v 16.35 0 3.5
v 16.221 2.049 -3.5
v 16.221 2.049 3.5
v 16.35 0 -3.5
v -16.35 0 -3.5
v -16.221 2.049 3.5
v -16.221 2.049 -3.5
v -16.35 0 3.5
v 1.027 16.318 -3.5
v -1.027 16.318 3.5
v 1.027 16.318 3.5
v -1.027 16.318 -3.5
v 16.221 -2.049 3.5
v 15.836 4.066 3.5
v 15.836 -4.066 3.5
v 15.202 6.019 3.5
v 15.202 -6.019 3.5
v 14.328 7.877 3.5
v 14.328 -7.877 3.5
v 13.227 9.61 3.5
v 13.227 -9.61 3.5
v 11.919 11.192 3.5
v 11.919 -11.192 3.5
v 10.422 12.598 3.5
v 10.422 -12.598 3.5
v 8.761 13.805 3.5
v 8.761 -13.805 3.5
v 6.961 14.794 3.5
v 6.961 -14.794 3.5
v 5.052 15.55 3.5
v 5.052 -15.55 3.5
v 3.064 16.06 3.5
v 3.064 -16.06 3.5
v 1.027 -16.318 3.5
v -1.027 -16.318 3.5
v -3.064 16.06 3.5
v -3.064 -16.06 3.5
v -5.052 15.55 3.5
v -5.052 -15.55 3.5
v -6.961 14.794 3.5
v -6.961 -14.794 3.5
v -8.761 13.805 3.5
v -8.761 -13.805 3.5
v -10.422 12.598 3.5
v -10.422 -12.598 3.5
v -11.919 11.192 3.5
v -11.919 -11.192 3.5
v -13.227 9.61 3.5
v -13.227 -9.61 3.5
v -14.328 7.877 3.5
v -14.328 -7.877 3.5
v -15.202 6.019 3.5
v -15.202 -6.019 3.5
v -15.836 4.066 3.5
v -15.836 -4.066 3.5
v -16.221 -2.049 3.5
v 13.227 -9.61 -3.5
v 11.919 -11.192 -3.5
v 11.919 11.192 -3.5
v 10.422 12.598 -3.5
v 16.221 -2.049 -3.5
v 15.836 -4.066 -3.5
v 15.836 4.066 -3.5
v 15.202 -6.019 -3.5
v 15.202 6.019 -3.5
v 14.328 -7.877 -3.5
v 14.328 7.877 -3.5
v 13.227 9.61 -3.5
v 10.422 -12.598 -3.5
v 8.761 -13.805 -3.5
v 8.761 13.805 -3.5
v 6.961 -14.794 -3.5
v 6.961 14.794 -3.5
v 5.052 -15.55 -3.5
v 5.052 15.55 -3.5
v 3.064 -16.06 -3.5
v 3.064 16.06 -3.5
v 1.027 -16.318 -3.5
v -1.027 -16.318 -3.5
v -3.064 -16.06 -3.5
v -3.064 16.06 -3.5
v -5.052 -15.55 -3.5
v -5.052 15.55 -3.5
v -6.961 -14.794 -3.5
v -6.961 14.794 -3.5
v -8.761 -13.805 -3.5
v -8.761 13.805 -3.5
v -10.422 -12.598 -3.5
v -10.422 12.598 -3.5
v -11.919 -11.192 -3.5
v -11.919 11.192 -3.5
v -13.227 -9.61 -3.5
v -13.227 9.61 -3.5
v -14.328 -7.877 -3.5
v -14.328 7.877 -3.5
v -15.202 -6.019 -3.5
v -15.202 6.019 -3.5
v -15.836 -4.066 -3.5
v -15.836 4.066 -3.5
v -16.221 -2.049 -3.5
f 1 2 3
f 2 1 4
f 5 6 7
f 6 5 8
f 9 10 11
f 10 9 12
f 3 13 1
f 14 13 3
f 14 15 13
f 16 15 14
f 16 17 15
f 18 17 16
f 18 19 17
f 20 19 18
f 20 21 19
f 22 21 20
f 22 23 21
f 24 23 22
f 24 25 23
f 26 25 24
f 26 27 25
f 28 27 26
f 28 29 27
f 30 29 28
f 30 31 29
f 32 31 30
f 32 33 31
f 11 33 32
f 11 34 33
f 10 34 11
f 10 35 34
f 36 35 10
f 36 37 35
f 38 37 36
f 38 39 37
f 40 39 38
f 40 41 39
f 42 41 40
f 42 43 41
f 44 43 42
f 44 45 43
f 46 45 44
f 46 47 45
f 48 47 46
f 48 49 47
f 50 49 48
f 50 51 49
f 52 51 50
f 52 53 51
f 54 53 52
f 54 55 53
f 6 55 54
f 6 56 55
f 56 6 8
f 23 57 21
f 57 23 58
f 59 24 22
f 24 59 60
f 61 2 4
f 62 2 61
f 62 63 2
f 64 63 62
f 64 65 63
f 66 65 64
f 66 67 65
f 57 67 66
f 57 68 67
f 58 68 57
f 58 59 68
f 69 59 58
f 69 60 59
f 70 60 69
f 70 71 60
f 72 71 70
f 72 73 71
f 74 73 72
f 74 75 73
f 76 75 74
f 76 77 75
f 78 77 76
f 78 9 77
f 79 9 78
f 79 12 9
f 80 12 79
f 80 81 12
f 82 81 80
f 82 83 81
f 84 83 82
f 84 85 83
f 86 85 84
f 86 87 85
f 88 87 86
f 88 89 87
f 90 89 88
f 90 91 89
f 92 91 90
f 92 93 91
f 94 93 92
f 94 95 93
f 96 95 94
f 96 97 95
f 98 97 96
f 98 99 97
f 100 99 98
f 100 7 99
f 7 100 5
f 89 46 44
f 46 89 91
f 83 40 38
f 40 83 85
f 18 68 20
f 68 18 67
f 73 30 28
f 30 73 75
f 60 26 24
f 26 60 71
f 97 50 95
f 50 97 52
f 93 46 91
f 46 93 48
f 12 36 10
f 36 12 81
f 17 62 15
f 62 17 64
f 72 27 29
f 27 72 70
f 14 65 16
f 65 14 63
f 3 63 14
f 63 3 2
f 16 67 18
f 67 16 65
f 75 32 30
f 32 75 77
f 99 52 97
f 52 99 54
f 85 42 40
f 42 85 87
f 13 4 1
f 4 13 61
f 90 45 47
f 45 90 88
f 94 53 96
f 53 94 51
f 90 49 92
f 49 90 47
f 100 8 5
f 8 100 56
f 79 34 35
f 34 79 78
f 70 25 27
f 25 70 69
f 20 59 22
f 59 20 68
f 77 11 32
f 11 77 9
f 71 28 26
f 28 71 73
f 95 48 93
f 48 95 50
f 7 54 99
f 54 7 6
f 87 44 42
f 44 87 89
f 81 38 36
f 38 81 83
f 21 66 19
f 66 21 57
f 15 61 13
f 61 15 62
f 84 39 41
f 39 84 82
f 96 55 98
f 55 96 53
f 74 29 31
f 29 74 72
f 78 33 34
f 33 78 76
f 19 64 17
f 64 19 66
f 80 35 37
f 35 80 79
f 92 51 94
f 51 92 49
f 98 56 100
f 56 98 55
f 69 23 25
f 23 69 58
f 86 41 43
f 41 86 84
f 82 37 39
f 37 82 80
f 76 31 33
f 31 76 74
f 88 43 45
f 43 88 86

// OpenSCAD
$fn = 50;


difference() {
	union() {
		translate(v = [0, 0, -3.5000000000]) {
			cylinder(h = 7, r = 16.3500000000);
		}
	}
	union() {
		translate(v = [0, 0, -100.0000000000]) {
			cylinder(h = 200, r = 0);
		}
	}
}
